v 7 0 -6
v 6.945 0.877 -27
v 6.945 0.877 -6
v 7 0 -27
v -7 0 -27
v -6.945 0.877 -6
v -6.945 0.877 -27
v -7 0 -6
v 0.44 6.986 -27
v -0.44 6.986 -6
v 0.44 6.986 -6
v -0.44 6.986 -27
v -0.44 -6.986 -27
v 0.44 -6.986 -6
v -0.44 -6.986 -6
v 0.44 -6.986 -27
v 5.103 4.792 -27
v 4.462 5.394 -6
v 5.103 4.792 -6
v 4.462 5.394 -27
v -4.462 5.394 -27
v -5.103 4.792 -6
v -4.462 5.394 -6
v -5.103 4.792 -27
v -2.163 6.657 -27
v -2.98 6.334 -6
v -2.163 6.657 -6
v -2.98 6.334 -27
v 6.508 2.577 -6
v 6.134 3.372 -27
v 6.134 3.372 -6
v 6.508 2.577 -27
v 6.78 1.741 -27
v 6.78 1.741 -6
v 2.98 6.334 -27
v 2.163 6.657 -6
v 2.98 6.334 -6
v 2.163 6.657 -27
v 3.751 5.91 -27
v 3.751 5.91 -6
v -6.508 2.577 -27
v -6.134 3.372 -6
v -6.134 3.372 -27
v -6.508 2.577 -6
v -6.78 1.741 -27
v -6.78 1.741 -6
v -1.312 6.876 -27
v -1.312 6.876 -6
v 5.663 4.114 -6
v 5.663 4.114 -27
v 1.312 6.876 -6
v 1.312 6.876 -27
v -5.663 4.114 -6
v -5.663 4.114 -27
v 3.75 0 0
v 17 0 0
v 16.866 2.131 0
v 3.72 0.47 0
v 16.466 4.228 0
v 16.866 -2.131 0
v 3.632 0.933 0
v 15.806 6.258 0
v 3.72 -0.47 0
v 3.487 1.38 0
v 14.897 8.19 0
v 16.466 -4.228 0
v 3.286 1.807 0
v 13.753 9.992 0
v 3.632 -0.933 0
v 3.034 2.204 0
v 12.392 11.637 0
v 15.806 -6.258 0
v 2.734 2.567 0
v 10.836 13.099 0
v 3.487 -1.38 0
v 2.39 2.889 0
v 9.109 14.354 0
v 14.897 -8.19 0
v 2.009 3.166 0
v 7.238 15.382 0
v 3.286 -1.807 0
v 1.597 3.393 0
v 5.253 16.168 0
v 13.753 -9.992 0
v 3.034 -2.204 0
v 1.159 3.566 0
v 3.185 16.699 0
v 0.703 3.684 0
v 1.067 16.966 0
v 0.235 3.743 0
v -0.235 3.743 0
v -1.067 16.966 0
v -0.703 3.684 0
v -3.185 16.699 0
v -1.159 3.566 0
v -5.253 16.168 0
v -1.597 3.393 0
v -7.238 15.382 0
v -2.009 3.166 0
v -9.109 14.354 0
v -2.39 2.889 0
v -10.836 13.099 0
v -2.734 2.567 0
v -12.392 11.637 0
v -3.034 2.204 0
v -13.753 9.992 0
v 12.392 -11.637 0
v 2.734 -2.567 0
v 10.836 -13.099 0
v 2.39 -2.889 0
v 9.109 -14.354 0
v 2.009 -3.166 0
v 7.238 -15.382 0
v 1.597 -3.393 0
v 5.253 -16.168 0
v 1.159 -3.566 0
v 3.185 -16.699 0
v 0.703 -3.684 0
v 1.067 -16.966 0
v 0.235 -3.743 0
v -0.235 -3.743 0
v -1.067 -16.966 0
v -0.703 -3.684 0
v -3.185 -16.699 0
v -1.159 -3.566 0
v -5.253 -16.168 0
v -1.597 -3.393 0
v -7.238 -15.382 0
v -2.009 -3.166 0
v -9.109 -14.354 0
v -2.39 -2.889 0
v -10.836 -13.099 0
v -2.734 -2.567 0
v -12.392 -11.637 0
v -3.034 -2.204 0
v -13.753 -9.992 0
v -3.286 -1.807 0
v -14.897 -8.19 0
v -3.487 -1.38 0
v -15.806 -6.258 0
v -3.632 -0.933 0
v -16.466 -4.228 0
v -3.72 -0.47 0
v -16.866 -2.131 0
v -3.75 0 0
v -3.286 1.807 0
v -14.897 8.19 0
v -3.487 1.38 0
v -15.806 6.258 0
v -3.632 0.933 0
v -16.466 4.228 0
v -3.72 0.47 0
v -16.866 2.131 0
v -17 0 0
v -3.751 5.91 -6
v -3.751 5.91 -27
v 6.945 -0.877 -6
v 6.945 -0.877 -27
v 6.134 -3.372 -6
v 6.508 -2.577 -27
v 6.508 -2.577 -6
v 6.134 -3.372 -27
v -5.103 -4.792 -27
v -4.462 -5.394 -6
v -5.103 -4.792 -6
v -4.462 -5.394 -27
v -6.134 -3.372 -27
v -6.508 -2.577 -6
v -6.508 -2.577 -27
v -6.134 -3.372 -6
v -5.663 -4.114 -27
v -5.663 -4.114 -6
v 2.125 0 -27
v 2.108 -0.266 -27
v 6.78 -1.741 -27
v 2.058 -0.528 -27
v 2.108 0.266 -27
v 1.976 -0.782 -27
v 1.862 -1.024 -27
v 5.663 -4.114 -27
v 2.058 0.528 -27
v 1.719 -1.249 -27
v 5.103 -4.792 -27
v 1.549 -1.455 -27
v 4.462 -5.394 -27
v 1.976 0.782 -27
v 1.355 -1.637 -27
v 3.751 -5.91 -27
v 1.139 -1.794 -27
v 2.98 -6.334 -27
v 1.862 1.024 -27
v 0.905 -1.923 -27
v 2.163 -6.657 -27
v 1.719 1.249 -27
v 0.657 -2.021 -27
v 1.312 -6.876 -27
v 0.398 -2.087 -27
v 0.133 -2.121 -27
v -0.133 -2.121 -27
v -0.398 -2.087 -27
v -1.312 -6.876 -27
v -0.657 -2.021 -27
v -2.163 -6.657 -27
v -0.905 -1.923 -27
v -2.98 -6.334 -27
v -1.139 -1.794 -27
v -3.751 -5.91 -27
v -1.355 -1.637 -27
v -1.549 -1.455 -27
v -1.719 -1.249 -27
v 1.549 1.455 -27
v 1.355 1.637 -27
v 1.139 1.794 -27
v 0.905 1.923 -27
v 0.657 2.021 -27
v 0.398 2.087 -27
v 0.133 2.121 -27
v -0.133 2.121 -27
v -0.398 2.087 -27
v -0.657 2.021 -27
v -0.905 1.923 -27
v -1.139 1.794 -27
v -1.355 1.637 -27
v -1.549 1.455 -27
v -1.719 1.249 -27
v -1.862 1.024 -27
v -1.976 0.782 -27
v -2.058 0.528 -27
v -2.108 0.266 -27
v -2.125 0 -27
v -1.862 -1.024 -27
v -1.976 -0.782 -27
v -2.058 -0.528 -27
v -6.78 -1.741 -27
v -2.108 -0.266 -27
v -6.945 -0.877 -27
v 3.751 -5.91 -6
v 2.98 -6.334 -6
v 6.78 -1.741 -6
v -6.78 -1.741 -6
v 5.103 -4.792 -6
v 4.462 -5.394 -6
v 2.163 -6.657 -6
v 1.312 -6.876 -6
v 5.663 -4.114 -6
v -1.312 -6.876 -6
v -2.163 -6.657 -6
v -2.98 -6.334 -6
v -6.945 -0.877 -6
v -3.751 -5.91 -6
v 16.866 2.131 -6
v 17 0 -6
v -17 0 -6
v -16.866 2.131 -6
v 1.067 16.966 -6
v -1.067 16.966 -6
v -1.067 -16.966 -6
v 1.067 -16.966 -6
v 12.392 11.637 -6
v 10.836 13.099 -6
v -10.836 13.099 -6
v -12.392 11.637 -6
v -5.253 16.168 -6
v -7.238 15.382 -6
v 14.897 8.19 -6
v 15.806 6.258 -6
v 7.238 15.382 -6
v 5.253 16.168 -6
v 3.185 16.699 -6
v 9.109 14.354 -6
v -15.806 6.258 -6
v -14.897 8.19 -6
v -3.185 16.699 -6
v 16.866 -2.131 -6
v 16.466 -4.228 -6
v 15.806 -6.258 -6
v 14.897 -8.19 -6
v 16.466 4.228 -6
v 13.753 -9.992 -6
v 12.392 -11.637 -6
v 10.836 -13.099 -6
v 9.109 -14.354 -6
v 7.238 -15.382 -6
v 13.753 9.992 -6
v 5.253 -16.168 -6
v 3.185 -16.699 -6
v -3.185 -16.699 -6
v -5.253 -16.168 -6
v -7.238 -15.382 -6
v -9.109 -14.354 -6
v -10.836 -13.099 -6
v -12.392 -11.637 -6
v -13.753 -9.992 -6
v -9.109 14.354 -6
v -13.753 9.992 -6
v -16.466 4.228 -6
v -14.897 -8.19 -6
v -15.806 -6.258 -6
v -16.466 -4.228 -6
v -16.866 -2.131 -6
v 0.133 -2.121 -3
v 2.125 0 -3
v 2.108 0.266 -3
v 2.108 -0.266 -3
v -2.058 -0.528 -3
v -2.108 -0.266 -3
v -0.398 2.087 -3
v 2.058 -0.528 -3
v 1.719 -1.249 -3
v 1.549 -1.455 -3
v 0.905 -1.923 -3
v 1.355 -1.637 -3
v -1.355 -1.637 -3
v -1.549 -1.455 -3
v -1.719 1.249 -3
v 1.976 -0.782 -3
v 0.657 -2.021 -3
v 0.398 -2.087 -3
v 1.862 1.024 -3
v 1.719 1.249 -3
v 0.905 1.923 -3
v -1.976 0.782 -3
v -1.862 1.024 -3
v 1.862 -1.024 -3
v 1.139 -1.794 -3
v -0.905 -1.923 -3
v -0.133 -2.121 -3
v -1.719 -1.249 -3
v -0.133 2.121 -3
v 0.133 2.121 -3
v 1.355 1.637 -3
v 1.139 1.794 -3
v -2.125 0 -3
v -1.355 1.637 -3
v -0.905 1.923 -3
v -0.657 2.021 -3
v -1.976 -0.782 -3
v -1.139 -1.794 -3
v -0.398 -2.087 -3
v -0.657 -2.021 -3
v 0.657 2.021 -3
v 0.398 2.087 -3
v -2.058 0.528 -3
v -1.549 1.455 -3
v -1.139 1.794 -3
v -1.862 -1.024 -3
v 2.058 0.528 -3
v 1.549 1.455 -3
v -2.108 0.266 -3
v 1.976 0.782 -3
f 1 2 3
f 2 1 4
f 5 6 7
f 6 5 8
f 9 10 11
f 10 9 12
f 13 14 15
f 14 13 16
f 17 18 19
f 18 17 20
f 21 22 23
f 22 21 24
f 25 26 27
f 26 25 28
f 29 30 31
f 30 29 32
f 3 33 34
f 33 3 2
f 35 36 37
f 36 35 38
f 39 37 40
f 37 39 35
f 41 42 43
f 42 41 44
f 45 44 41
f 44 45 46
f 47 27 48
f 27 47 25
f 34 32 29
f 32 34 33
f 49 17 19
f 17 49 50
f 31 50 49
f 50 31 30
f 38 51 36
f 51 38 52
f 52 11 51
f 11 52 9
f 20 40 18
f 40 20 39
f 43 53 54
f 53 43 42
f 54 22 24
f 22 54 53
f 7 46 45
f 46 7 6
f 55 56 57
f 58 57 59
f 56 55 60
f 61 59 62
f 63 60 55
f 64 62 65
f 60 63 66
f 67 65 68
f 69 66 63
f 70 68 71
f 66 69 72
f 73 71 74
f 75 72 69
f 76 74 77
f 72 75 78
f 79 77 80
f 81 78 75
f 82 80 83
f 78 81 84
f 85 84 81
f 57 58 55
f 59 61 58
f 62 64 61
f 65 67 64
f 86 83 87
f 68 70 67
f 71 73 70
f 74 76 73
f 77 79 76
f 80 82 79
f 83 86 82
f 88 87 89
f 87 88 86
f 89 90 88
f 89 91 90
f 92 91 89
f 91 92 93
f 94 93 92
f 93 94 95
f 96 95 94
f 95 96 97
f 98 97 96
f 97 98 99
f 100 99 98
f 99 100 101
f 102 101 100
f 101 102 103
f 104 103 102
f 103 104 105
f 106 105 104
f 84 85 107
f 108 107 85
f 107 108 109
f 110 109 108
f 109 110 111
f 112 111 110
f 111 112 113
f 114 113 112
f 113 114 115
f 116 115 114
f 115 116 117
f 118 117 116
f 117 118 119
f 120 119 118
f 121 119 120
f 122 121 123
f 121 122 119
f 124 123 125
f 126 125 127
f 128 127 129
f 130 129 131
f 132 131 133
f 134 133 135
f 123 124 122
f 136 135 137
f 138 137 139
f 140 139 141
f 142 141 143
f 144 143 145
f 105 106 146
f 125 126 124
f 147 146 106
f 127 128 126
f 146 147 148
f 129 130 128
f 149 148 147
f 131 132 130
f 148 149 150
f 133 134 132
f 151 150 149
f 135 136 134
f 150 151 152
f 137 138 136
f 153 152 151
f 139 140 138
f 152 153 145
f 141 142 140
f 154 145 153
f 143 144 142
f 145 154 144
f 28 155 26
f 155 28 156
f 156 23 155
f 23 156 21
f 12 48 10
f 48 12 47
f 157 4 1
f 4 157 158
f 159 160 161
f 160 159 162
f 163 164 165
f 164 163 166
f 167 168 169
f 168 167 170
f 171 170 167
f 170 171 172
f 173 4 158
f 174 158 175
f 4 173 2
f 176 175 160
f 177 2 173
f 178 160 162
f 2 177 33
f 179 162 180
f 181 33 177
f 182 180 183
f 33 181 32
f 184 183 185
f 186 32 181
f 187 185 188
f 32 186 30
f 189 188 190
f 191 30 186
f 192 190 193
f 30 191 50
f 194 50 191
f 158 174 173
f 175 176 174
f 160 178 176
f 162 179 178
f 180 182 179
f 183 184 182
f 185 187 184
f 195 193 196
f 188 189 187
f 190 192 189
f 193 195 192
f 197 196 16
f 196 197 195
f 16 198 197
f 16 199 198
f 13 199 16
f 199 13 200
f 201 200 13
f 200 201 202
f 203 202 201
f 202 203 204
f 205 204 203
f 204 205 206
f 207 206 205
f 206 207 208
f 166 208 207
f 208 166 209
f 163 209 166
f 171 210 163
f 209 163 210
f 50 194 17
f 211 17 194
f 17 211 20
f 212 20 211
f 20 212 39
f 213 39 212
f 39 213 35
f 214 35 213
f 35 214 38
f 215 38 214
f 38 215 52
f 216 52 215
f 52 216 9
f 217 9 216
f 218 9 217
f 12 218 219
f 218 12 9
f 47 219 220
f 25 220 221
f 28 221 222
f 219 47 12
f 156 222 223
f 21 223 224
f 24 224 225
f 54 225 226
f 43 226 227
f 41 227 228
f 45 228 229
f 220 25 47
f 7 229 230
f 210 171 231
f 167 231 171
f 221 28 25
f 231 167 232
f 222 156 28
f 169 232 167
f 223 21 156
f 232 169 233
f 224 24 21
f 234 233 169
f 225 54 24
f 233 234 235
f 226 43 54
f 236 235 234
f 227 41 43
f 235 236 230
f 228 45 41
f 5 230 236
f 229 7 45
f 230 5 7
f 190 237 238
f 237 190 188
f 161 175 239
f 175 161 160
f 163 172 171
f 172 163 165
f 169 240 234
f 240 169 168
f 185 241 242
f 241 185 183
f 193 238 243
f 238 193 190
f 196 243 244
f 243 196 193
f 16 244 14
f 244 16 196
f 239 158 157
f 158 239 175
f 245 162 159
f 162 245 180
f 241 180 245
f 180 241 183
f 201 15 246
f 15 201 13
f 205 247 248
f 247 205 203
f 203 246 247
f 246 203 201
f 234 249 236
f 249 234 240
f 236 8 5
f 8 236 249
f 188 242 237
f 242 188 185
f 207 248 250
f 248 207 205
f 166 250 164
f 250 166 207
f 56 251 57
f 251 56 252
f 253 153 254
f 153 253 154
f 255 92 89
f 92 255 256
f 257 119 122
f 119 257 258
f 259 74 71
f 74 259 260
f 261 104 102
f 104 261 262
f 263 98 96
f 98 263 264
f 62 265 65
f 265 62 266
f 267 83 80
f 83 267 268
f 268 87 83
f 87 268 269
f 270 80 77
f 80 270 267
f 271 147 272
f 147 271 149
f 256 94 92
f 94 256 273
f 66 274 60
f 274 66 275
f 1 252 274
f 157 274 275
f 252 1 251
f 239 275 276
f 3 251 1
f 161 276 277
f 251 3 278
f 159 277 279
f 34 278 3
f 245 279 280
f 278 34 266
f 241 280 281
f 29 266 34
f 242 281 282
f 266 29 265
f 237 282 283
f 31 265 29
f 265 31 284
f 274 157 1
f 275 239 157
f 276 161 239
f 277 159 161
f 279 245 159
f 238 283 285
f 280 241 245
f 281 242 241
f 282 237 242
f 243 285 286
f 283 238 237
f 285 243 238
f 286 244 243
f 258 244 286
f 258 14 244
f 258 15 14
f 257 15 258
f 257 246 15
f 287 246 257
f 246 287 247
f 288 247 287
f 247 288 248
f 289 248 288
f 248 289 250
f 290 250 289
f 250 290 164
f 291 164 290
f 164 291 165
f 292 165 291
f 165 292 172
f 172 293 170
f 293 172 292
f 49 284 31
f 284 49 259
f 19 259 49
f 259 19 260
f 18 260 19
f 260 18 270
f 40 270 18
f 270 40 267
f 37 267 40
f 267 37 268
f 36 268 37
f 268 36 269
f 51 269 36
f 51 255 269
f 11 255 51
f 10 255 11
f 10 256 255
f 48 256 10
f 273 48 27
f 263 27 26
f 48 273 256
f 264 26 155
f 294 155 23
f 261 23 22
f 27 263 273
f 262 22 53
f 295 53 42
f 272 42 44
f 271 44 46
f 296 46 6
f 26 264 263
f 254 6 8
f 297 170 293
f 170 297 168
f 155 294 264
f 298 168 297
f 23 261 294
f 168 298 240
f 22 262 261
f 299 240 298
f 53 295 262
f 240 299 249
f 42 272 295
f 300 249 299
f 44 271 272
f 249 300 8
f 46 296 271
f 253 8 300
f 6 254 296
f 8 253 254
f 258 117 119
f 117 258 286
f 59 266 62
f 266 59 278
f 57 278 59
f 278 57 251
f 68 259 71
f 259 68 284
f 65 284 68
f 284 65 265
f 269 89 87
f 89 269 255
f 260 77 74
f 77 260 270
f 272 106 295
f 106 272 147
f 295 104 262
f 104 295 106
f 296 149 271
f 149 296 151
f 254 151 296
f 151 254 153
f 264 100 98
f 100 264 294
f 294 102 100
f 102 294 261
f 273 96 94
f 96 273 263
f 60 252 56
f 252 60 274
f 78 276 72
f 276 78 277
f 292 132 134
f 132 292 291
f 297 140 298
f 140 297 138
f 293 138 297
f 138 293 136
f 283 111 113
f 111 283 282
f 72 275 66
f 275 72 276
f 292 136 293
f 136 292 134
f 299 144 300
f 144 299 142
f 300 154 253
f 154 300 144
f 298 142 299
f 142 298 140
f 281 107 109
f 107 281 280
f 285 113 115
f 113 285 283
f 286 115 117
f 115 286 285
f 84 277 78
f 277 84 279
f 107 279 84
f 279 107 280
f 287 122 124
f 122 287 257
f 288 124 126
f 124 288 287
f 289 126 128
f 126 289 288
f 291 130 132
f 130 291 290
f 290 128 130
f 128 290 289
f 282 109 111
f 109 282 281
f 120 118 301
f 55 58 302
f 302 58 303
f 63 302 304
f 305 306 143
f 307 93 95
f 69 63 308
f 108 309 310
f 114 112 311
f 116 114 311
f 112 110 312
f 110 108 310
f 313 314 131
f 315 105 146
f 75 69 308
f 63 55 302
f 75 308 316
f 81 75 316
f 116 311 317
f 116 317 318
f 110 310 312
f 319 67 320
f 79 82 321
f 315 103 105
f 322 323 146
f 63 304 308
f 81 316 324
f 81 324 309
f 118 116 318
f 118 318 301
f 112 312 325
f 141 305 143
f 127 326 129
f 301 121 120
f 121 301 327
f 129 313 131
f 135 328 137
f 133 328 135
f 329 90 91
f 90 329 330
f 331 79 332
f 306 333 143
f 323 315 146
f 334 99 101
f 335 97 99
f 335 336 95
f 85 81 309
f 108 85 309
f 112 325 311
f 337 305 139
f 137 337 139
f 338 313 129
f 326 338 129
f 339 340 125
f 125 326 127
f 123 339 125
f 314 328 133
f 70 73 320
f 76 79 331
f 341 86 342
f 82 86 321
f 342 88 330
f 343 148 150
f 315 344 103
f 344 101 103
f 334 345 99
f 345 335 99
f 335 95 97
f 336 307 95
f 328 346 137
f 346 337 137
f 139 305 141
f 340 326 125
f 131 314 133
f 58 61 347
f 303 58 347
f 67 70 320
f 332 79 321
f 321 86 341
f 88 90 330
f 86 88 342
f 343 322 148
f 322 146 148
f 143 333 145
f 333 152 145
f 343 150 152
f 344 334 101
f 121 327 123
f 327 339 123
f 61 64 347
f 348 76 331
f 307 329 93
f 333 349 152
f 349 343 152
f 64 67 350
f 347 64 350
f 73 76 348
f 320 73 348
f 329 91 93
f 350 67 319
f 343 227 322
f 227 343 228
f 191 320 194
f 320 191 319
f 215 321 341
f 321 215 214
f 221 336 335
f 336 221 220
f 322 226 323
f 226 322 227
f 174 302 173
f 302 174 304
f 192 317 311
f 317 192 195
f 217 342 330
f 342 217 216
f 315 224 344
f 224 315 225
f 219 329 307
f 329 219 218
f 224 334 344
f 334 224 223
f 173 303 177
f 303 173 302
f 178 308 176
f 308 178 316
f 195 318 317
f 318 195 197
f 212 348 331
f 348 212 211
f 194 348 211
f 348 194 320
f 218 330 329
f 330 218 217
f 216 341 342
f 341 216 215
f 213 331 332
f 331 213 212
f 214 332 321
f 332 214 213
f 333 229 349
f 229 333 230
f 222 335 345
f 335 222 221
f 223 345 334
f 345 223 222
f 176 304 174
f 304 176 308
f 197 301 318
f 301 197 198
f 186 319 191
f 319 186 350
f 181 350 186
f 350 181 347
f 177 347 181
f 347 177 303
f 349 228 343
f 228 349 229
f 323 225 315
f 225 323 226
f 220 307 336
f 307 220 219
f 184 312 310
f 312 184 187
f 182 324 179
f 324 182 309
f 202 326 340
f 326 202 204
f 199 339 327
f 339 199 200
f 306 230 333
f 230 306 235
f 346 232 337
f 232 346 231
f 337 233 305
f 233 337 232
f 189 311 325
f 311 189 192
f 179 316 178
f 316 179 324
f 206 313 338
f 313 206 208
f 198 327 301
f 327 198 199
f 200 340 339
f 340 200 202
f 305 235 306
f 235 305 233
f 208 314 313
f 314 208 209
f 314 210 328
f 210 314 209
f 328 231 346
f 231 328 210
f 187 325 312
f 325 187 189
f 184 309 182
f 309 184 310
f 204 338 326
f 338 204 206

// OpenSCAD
$fn = 50;


difference() {
	union() {
		translate(v = [0, 0, -27.0000000000]) {
			cylinder(h = 27, r = 7.0000000000);
		}
		translate(v = [0, 0, -6.0000000000]) {
			cylinder(h = 6, r = 17.0000000000);
		}
	}
	union() {
		translate(v = [0, 0, 0]) {
			rotate(a = [0, 0, 0]) {
				difference() {
					union() {
						#translate(v = [0, 0, -27.0000000000]) {
							cylinder(h = 27, r = 2.0000000000);
						}
						#translate(v = [0, 0, -3]) {
							cylinder(h = 3, r1 = 2.1250000000, r2 = 3.7500000000);
						}
						#translate(v = [0, 0, -27.0000000000]) {
							cylinder(h = 27, r = 2.1250000000);
						}
						#translate(v = [0, 0, -27.0000000000]) {
							cylinder(h = 27, r = 2.0000000000);
						}
					}
					union();
				}
			}
		}
	}
}
